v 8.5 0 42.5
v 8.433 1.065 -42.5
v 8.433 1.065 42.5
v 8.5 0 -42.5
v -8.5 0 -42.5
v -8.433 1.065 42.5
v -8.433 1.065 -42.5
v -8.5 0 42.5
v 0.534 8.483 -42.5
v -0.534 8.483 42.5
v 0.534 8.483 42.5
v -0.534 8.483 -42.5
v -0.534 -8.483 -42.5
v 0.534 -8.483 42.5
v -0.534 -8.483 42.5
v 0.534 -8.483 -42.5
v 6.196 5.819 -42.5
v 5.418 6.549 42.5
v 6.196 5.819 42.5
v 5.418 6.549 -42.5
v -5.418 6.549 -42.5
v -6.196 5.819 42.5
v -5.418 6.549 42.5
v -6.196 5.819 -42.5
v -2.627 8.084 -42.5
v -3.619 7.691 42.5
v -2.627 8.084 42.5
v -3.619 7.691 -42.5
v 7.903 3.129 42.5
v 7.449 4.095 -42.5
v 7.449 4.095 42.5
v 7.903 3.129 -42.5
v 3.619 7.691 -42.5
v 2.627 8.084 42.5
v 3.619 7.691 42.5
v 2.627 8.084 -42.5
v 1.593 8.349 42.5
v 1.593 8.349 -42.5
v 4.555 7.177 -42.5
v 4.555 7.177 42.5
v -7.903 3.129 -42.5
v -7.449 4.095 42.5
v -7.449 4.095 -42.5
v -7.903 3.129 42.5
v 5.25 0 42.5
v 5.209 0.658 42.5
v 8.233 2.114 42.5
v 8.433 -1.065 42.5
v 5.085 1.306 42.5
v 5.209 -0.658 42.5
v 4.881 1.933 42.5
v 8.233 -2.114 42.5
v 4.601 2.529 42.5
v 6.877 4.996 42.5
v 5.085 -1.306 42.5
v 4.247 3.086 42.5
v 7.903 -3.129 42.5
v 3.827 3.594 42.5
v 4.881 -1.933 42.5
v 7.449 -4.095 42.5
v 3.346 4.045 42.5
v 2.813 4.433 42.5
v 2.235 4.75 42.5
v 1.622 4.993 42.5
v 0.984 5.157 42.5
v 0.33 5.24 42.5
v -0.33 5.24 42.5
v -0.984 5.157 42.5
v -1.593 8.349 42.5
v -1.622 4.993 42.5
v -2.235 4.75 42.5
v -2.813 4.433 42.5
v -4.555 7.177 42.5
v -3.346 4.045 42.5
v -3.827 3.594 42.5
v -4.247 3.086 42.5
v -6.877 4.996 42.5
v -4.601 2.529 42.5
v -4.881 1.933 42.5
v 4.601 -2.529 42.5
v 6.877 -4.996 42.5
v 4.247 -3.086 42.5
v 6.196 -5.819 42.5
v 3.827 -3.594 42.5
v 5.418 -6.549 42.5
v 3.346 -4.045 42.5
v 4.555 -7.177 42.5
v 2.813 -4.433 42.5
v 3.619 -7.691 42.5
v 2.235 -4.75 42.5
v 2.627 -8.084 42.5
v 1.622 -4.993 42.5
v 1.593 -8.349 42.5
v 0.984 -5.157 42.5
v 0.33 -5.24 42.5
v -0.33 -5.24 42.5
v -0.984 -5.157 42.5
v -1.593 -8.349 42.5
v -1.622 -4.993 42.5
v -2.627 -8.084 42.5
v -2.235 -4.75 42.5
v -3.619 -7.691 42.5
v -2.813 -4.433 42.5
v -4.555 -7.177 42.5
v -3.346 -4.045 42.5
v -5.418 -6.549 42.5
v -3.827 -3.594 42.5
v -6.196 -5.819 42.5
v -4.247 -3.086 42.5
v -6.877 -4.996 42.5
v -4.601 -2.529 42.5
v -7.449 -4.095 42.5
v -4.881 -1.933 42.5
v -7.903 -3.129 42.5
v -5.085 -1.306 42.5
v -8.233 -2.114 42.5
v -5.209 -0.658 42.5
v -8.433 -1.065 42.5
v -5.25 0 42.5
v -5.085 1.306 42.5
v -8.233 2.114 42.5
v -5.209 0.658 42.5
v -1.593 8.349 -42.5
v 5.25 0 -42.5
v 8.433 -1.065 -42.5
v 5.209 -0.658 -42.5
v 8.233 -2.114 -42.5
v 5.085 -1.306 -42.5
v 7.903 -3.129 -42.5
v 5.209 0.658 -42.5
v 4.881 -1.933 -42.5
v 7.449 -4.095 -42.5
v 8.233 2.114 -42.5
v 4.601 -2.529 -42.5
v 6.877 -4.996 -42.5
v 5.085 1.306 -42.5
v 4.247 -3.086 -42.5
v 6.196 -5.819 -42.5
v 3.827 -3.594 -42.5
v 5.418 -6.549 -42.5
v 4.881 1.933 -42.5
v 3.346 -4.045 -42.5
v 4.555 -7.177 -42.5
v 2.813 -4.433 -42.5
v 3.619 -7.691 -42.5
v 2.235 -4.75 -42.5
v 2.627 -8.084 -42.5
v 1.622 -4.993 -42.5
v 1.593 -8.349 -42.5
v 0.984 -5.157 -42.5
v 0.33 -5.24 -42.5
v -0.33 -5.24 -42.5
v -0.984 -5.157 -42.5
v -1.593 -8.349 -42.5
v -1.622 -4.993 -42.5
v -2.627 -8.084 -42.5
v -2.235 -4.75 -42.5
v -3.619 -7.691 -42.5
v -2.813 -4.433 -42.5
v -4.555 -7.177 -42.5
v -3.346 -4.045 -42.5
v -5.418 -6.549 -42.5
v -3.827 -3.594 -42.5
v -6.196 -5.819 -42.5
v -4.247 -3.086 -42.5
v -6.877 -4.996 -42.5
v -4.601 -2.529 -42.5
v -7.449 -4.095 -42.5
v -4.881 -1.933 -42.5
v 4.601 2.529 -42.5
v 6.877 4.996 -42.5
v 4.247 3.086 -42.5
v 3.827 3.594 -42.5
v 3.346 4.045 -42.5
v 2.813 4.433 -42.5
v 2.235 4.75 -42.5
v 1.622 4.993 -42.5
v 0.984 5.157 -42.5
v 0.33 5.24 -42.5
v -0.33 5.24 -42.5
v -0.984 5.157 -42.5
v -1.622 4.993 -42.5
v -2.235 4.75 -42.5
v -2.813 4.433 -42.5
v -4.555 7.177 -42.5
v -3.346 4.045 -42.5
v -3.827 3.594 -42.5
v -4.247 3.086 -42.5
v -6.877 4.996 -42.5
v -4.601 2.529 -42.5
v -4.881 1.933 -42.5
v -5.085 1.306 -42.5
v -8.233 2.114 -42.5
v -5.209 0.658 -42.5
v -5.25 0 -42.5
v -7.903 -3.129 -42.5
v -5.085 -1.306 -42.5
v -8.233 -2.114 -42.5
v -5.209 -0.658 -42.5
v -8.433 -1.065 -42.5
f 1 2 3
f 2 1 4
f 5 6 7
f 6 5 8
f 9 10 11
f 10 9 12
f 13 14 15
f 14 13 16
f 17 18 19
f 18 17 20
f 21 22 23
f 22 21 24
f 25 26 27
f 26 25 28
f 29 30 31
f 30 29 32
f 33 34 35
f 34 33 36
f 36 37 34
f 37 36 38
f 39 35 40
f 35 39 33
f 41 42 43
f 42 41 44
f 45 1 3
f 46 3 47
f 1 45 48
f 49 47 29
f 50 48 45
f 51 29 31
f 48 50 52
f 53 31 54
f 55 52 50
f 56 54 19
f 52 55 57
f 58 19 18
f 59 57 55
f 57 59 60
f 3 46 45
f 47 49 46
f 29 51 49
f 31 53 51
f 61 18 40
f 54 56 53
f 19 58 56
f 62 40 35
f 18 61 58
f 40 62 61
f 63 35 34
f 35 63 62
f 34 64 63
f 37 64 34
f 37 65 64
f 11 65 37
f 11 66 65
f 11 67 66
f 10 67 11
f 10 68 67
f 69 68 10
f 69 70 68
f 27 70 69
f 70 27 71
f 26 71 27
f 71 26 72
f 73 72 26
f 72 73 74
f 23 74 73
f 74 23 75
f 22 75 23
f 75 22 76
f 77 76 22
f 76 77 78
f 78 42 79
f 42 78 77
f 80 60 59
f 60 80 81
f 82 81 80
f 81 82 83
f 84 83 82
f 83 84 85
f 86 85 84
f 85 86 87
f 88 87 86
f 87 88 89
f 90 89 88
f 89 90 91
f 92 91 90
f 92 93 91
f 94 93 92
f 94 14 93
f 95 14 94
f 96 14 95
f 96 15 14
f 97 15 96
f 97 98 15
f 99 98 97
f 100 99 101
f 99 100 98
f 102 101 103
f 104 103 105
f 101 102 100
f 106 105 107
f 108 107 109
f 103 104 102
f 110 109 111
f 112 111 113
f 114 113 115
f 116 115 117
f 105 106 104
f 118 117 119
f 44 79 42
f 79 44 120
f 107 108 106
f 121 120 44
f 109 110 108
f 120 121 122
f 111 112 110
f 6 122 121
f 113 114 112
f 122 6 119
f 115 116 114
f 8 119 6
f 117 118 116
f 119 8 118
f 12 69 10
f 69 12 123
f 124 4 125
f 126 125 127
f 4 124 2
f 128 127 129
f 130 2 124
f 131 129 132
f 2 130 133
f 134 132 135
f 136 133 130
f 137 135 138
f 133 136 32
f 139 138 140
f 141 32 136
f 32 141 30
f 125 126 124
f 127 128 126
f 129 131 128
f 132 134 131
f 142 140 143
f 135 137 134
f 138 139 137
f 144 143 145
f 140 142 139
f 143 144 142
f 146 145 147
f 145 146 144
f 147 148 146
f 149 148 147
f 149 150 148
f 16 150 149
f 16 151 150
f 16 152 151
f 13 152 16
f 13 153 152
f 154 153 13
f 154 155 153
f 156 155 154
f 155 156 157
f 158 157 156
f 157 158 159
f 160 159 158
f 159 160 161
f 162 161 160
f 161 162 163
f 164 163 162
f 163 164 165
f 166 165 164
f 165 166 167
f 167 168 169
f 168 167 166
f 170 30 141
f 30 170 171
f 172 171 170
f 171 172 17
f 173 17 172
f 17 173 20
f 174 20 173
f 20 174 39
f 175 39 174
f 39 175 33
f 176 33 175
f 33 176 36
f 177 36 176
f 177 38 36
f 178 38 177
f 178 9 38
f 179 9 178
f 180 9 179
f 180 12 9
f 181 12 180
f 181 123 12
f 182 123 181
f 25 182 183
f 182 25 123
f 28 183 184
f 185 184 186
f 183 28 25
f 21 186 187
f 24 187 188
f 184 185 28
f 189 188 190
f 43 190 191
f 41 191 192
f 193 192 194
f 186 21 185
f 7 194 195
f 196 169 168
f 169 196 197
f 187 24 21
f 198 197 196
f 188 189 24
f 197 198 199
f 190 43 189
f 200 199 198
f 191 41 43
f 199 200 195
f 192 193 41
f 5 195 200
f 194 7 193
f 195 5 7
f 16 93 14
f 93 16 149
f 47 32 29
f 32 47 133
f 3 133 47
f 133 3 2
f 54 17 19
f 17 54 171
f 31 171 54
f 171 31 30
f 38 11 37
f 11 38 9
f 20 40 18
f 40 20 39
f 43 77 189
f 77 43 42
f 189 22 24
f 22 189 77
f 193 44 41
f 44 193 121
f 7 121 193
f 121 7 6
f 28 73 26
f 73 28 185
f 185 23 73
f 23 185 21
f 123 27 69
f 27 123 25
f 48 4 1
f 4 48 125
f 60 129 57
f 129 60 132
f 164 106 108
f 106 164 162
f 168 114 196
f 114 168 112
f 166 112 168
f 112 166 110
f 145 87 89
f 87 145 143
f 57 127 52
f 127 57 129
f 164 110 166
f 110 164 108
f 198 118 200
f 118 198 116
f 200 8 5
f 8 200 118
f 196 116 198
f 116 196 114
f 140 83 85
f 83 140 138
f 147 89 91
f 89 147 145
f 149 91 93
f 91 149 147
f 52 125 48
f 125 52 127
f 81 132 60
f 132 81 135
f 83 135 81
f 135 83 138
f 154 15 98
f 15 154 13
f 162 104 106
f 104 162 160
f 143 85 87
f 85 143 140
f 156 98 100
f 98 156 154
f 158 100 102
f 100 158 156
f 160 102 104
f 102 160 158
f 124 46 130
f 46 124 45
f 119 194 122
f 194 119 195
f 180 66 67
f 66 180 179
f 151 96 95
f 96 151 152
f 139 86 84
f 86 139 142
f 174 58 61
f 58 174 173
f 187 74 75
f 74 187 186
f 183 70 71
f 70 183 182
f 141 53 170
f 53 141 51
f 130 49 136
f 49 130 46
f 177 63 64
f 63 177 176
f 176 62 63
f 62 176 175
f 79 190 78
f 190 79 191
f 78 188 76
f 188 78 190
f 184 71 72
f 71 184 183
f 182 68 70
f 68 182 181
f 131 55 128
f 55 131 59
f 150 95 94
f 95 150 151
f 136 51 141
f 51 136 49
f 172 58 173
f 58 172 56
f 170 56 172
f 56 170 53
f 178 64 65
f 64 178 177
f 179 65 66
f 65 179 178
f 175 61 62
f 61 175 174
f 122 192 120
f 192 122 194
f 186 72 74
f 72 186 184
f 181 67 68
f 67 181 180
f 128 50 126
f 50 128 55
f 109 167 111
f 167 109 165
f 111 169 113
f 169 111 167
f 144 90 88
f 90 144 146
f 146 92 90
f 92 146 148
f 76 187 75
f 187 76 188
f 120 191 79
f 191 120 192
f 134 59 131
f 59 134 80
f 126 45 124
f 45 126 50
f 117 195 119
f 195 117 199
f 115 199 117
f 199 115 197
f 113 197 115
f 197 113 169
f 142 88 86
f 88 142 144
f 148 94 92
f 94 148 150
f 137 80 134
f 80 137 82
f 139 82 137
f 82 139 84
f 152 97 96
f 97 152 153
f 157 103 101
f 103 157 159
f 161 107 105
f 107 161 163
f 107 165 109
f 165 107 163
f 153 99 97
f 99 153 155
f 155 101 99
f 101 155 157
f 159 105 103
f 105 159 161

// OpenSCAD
$fn = 50;


difference() {
	union() {
		translate(v = [0, 0, -42.5000000000]) {
			cylinder(h = 85, r = 8.5000000000);
		}
	}
	union() {
		translate(v = [0, 0, -100.0000000000]) {
			cylinder(h = 200, r = 5.2500000000);
		}
	}
}
